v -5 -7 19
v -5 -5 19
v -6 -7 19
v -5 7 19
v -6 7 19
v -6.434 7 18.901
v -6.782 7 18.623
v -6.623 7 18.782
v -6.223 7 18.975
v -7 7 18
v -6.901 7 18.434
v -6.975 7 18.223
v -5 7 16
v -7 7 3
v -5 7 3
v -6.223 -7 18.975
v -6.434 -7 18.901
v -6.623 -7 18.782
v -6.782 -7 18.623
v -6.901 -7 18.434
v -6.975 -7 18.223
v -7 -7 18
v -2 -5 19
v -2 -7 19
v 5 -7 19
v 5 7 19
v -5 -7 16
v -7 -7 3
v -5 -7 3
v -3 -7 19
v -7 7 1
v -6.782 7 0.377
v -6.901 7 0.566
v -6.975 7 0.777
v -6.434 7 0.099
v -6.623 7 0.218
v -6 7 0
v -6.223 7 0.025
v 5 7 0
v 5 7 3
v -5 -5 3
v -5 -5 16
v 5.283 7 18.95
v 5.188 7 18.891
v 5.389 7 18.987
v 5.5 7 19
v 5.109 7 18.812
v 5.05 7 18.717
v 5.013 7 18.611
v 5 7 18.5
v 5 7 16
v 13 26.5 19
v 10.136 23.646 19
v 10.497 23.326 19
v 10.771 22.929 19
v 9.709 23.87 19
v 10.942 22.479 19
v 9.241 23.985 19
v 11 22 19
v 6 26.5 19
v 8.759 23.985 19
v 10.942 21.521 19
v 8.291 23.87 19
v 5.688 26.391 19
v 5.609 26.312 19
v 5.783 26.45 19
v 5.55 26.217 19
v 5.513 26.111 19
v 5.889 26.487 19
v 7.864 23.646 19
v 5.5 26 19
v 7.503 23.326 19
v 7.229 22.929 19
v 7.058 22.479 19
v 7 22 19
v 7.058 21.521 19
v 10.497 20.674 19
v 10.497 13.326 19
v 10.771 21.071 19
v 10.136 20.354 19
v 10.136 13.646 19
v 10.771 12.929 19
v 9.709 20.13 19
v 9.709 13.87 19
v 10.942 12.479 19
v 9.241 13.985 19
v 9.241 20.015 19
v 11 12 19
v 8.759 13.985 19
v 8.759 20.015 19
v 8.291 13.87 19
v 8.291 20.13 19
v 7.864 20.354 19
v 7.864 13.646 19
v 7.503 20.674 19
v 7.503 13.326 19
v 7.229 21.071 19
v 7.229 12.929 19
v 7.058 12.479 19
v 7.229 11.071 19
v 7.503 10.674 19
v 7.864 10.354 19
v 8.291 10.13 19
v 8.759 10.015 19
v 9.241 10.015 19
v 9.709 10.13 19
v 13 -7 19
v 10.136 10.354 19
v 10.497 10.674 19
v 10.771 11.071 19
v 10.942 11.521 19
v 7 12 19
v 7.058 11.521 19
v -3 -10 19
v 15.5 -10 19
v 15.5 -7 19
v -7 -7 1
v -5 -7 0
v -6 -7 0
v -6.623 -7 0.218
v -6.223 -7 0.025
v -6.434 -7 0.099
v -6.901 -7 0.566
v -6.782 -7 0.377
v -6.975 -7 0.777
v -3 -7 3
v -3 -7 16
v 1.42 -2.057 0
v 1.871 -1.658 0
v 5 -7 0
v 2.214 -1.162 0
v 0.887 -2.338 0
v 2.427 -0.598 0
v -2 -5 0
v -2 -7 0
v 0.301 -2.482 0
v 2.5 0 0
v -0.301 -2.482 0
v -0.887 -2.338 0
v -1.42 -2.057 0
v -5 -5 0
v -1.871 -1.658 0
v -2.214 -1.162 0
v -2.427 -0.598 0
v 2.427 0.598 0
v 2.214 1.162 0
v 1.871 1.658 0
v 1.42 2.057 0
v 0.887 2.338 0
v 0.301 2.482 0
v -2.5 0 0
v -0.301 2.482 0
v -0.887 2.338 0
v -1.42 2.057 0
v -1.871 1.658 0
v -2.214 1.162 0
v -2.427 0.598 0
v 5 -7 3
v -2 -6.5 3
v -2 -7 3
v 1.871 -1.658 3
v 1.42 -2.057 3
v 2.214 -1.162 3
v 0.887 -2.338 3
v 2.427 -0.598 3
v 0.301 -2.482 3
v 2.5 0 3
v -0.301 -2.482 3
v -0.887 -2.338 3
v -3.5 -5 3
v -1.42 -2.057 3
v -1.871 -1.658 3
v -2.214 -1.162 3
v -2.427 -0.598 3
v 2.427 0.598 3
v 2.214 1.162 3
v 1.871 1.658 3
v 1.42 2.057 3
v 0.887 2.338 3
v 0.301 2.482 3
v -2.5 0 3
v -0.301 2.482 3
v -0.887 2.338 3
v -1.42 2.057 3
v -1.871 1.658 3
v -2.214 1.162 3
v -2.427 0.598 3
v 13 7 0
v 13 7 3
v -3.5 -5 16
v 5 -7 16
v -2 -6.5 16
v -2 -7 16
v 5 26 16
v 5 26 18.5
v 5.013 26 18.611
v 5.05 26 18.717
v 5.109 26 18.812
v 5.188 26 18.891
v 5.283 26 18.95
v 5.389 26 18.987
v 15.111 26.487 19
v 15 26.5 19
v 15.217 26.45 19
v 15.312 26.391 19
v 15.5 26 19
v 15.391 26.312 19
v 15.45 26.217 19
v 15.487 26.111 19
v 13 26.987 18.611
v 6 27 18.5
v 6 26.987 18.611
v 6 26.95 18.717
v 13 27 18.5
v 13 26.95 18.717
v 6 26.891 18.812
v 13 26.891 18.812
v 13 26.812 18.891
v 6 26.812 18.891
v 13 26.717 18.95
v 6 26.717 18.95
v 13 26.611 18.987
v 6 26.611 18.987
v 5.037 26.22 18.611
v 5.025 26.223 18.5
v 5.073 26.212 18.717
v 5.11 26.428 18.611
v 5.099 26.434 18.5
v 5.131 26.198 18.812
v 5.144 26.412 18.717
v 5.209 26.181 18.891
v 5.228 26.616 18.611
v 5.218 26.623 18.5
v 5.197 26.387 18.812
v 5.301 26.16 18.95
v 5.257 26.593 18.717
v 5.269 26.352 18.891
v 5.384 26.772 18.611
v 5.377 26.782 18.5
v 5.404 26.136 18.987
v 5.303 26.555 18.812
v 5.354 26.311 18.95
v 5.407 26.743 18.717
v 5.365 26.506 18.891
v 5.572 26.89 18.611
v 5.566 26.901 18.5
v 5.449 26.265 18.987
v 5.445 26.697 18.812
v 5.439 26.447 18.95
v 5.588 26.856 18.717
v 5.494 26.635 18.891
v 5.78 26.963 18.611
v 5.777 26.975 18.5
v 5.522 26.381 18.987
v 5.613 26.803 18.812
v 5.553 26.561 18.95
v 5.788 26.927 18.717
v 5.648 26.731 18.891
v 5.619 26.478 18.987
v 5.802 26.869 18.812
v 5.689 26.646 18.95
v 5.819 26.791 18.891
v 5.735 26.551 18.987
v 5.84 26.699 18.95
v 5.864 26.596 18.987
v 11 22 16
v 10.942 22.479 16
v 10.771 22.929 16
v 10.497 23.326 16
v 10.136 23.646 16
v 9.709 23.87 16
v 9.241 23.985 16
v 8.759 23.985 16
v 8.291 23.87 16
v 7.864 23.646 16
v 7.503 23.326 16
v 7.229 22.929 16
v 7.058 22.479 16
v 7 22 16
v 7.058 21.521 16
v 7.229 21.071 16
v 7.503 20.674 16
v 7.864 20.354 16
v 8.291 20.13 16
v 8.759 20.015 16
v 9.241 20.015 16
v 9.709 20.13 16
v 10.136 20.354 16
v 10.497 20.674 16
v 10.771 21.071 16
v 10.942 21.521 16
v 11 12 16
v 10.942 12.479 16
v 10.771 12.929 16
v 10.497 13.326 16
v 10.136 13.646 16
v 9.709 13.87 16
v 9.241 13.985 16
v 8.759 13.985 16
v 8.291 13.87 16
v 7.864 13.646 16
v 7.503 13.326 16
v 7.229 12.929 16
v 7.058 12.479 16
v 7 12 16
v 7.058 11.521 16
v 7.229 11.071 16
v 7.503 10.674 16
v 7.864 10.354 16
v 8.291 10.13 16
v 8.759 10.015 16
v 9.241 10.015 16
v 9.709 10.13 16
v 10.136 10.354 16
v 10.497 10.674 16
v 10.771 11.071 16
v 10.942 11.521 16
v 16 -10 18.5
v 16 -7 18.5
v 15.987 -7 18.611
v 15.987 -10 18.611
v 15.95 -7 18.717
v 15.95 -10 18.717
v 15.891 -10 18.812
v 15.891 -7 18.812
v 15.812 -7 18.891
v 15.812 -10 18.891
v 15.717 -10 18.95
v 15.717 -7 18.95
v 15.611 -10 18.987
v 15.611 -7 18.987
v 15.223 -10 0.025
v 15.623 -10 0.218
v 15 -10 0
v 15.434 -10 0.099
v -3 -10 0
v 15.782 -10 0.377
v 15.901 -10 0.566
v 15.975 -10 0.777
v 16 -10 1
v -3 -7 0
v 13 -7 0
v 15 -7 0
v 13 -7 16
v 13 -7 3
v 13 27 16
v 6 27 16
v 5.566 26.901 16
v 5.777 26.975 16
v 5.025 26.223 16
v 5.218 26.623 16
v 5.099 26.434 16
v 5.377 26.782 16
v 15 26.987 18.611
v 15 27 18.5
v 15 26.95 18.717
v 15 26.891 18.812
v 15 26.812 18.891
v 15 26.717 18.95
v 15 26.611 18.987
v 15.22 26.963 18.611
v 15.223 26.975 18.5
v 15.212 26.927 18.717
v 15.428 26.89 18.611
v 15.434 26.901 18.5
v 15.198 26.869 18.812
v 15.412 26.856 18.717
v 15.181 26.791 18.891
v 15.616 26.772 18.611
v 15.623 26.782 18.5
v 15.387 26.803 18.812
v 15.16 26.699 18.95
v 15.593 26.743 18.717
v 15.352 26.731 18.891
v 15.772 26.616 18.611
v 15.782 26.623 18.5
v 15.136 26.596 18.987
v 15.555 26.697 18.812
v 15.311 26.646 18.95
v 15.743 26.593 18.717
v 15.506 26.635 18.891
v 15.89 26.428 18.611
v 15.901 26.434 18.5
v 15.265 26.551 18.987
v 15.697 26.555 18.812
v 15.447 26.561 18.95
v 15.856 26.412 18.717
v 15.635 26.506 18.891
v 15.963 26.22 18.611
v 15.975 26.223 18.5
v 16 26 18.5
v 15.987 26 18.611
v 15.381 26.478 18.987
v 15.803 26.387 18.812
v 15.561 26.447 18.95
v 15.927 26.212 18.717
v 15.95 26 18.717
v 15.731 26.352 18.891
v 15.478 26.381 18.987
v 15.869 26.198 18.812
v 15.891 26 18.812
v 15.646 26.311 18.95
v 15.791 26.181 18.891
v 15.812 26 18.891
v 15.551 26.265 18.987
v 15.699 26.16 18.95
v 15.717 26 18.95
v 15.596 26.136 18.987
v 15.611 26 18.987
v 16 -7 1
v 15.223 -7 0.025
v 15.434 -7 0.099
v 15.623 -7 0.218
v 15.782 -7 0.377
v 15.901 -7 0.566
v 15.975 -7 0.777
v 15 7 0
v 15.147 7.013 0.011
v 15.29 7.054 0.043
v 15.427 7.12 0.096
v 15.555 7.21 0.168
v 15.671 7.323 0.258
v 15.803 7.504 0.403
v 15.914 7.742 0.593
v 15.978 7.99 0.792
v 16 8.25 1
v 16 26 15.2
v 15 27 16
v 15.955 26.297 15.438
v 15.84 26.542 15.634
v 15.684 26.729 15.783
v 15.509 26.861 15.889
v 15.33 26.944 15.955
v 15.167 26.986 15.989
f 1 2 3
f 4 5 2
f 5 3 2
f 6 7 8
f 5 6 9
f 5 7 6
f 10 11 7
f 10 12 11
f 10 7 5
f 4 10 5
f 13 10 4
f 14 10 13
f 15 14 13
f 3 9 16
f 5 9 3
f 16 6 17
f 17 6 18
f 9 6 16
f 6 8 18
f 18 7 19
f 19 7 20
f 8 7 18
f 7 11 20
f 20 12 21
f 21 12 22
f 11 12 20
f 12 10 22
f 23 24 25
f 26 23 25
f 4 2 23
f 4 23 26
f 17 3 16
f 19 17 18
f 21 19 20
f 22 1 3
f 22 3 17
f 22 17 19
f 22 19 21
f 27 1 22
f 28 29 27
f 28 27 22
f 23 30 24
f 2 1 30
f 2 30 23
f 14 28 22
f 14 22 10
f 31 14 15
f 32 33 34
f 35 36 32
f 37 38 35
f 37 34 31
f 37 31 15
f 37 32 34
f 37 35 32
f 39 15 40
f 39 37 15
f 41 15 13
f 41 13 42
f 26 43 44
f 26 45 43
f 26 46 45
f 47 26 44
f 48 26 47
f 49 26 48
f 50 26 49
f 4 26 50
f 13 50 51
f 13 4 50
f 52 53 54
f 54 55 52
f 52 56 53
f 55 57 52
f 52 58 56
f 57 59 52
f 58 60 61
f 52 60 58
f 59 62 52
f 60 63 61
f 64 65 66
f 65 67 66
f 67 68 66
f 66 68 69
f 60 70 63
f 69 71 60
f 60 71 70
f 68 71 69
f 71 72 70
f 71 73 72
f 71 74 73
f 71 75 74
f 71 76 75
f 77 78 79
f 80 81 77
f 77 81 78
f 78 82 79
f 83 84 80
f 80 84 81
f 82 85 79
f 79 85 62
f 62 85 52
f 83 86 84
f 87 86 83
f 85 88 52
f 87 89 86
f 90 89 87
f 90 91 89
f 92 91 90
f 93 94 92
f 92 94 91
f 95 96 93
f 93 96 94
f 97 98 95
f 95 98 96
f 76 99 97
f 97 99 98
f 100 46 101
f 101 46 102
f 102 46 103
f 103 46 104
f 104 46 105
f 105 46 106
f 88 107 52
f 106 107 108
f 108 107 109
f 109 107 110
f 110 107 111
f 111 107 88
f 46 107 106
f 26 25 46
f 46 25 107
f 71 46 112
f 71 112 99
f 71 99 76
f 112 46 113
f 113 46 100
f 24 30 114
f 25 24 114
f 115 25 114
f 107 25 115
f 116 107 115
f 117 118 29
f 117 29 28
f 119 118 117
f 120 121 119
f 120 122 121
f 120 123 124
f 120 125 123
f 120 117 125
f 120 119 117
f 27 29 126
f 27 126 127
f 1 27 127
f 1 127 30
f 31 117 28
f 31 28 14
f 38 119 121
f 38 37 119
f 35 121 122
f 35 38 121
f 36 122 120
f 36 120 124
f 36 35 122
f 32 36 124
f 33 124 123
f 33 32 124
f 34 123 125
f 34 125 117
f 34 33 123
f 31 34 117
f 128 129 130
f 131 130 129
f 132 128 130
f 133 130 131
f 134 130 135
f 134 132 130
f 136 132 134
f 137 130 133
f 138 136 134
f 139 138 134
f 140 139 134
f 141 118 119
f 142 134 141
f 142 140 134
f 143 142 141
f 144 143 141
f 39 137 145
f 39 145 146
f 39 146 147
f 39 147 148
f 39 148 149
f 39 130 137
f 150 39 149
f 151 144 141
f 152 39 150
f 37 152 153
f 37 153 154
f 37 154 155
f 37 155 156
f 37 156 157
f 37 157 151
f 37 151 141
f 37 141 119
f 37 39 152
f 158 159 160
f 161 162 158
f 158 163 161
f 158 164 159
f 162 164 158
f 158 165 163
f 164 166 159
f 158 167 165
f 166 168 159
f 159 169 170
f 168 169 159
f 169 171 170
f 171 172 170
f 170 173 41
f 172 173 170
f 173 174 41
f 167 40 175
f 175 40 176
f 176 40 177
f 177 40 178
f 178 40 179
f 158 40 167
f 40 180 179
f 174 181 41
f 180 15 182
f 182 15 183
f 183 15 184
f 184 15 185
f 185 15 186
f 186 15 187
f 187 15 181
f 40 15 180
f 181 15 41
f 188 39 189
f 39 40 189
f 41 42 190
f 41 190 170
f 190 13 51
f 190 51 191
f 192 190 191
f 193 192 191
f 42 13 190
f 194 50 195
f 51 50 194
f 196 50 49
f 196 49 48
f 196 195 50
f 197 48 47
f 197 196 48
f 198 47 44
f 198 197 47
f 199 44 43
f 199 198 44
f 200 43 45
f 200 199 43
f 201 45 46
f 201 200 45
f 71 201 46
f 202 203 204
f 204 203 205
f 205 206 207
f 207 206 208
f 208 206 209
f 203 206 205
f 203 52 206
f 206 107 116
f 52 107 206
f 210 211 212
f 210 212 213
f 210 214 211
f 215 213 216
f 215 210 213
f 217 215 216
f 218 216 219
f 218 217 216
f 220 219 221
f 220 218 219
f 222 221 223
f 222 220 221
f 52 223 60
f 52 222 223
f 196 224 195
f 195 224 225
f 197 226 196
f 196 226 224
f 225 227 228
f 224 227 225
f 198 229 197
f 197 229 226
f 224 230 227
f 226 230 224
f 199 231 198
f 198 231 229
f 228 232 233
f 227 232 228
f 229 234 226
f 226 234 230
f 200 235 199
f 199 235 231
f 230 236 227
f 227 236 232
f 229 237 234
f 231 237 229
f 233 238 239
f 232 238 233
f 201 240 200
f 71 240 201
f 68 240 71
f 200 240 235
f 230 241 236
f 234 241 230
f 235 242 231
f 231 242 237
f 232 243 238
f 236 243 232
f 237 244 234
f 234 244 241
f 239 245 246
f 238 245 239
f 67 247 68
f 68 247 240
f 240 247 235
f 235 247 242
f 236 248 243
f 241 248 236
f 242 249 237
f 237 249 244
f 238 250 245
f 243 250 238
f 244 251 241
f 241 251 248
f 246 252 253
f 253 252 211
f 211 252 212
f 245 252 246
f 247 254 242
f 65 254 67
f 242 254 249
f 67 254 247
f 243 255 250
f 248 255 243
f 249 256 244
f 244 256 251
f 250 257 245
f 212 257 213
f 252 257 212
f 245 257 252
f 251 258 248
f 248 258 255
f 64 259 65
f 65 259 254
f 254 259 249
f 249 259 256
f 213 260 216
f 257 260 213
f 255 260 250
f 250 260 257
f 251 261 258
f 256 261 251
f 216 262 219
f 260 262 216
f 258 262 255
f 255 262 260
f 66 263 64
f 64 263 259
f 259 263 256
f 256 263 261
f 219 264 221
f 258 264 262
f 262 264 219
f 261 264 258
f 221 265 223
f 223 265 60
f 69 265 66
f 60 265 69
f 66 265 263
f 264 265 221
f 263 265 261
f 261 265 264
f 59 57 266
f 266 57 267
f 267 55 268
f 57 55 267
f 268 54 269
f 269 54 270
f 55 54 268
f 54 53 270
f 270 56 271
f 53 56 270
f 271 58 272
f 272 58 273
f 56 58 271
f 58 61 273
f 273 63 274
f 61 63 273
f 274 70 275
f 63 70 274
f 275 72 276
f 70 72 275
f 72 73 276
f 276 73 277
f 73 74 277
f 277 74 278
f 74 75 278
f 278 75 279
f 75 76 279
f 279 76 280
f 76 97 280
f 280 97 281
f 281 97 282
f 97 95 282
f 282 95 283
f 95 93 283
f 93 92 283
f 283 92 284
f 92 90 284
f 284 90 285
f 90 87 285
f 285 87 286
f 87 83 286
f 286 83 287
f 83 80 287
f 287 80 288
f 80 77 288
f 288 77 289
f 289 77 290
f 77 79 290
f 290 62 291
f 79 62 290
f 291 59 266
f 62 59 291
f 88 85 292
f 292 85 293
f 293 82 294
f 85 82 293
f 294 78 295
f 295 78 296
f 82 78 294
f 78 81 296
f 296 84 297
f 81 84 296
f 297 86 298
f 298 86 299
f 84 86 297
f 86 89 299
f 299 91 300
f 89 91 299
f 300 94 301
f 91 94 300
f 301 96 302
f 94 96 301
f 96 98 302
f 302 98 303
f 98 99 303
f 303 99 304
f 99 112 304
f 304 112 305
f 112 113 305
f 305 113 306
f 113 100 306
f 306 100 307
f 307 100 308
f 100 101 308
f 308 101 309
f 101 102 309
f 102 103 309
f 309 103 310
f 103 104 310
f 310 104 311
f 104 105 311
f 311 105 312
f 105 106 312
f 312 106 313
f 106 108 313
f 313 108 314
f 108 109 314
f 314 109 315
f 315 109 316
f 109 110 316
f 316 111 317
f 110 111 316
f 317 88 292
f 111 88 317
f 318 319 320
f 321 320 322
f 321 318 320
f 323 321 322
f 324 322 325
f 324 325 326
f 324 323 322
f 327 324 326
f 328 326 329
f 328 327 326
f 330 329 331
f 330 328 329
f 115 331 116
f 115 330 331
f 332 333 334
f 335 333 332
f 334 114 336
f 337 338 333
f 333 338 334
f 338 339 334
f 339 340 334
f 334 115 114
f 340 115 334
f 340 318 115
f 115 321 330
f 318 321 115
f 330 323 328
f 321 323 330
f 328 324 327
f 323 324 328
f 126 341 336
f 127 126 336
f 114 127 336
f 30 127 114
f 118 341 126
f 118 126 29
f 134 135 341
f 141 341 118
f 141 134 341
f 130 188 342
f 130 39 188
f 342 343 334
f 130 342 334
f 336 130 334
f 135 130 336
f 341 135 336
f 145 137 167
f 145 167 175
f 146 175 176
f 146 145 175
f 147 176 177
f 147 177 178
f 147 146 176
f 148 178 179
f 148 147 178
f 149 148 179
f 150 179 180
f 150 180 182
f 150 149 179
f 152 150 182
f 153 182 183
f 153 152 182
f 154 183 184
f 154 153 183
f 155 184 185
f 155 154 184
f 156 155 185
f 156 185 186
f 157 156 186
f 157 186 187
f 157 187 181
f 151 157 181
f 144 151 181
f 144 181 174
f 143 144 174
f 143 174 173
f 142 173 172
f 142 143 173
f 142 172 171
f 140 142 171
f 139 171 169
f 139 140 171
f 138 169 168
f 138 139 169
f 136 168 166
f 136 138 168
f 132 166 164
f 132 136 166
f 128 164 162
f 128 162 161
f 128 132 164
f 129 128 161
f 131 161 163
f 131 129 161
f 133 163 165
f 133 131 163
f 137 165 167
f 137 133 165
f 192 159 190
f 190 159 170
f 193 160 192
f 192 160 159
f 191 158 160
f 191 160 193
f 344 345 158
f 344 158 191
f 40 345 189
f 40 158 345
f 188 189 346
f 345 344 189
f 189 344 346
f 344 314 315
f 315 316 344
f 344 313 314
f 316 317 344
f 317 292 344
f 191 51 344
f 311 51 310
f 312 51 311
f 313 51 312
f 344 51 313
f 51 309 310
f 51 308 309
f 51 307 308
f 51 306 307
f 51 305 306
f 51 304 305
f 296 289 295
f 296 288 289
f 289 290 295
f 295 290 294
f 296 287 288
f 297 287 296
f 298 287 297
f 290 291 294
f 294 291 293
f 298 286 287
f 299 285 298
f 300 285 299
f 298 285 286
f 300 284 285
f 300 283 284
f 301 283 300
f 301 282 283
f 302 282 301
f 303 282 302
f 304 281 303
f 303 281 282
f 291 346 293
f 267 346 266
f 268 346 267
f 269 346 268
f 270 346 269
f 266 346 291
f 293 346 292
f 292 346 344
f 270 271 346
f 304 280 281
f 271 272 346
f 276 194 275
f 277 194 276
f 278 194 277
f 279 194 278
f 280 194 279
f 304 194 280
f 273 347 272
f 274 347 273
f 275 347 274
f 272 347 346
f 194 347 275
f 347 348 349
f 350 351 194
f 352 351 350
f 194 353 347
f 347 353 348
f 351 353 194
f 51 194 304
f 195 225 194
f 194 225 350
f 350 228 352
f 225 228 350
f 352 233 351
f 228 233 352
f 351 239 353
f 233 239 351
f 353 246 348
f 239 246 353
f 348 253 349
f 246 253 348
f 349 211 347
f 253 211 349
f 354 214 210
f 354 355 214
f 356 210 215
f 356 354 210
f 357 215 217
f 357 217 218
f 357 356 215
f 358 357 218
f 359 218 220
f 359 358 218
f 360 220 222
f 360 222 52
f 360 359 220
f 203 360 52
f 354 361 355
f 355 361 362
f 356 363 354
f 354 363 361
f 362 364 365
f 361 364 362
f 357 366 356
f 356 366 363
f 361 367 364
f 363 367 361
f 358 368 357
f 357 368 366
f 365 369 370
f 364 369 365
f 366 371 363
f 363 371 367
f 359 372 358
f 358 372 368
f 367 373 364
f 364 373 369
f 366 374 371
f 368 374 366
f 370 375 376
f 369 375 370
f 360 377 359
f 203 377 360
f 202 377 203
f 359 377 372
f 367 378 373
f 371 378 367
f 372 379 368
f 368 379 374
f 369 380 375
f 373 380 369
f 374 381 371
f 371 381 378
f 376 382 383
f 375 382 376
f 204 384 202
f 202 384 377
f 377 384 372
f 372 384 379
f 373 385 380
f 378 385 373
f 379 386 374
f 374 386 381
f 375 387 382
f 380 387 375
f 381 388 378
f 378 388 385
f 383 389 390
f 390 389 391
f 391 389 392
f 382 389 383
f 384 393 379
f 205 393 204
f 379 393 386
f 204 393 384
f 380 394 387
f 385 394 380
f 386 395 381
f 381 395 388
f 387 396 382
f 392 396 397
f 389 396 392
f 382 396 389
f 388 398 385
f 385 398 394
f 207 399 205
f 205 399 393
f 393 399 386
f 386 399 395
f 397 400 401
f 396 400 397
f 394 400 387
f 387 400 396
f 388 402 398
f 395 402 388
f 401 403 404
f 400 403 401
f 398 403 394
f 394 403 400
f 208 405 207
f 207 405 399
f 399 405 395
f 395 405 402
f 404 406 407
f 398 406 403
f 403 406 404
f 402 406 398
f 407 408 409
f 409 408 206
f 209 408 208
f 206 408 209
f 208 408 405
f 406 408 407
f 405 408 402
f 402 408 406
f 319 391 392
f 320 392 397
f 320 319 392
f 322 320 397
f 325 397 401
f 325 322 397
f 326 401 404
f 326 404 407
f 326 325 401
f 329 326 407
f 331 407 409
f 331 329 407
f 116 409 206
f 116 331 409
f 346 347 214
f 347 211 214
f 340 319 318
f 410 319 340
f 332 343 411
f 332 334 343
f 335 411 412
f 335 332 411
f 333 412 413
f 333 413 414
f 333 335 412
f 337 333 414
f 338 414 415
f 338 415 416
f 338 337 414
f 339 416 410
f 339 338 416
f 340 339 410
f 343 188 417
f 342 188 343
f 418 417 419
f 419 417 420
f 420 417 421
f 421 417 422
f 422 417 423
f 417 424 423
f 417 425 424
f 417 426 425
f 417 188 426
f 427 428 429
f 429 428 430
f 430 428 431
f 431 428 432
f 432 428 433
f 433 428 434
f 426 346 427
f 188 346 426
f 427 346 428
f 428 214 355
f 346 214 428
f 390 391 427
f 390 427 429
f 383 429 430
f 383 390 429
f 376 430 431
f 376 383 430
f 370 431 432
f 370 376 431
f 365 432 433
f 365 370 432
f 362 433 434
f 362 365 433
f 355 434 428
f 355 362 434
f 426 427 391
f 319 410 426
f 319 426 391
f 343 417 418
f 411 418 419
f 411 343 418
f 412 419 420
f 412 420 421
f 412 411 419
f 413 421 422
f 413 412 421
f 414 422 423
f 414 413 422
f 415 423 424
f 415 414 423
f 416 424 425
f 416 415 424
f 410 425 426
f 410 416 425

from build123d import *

# Parameters (mm, degrees)
SKETCH_W     = 12
SKETCH_H     = 14
SKETCH_R     = 2.5
PAD_DEPTH    = 3
SKETCH001_W  = 2
SKETCH001_H  = 14
PAD001_DEPTH = 16
SKETCH002_W  = 14
SKETCH002_H  = 3
PAD008_DEPTH = 10
SKETCH004_W  = 14
SKETCH004_H  = 3
PAD004_DEPTH = 8
SKETCH003_W  = 34
SKETCH003_H  = 3
PAD009_DEPTH = 8
SKETCH006_R  = 2
POCKET_DEPTH = 19.001
PAD005_DEPTH = 3
SKETCH008_W  = 19
SKETCH008_H  = 19
PAD010_DEPTH = 3
SKETCH009_W  = 2
SKETCH009_H  = 19
PAD011_DEPTH = 3
CHAMFER_SIZE = 1.5
FILLET_R     = 1
FILLET001_R  = 1
FILLET002_R  = 1
FILLET003_R  = 0.5
FILLET004_R  = 1


with BuildPart() as part:
    # Sketch → Pad (new body)
    with BuildSketch(Plane.XY):
        with Locations((-1, 0)):
            Rectangle(SKETCH_W, SKETCH_H)
        Circle(SKETCH_R, mode=Mode.SUBTRACT)
    extrude(amount=PAD_DEPTH)

    # Sketch001 (on Face7 of Pad) → Pad001 (join)
    with BuildSketch(Plane.XY.offset(3)):
        with Locations((-6, 0)):
            Rectangle(SKETCH001_W, SKETCH001_H)
    extrude(amount=PAD001_DEPTH)

    # Sketch002 (on Face10 of Pad001) → Pad008 (join)
    with BuildSketch(Plane.YZ.offset(-5)):
        with Locations((0, 17.5)):
            Rectangle(SKETCH002_W, SKETCH002_H)
    extrude(amount=PAD008_DEPTH)

    # Sketch004 → Pad004 (join)
    with BuildSketch(Plane(origin=(5, 0, 0), x_dir=(0, -1, 0), z_dir=(-1, 0, 0))):
        with Locations((0, 1.5)):
            Rectangle(SKETCH004_W, SKETCH004_H)
    extrude(amount=-PAD004_DEPTH)

    # Sketch003 → Pad009 (join)
    with BuildSketch(Plane(origin=(5, 0, 0), x_dir=(0, -1, 0), z_dir=(-1, 0, 0))):
        with Locations((-10, 17.5)):
            Rectangle(SKETCH003_W, SKETCH003_H)
    extrude(amount=-PAD009_DEPTH)

    # Sketch006 → Pocket (cut, through all)
    with BuildSketch(Plane.XY.offset(19)):
        with Locations((9, 22)):
            Circle(SKETCH006_R)
        with Locations((9, 12)):
            Circle(SKETCH006_R)
    extrude(amount=-POCKET_DEPTH, mode=Mode.SUBTRACT)

    # Sketch007 (on Face26 of Pocket) → Pad005 (join)
    with BuildSketch(Plane.YZ.offset(13)):
        Polygon((27, 19), (-7, 19), (-7, 0), (7, 0), (27, 16), align=None)
    extrude(amount=PAD005_DEPTH)

    # Sketch008 (on Face19 of Pad005) → Pad010 (join)
    with BuildSketch(Plane.XZ.offset(7)):
        with Locations((6.5, 9.5)):
            Rectangle(SKETCH008_W, SKETCH008_H)
    extrude(amount=PAD010_DEPTH)

    # Sketch009 (on Face14 of Pad010) → Pad011 (join)
    with BuildSketch(Plane.YZ.offset(-5)):
        with Locations((-6, 9.5)):
            Rectangle(SKETCH009_W, SKETCH009_H)
    extrude(amount=PAD011_DEPTH)

    # Chamfer
    chamfer_edges = [part.edges().sort_by_distance(p)[0] for p in [
        (-2, -5, 9.5),
    ]]
    chamfer(chamfer_edges, length=CHAMFER_SIZE)

    # Fillet
    fillet_edges = [part.edges().sort_by_distance(p)[0] for p in [
        (16, 0, 0),
    ]]
    fillet(fillet_edges, radius=FILLET_R)

    # Fillet001
    fillet001_edges = [part.edges().sort_by_distance(p)[0] for p in [
        (-7, 0, 0),
    ]]
    fillet(fillet001_edges, radius=FILLET001_R)

    # Fillet002
    fillet002_edges = [part.edges().sort_by_distance(p)[0] for p in [
        (5, 27, 17.5),
        (16, 27, 17.5),
    ]]
    fillet(fillet002_edges, radius=FILLET002_R)

    # Fillet003
    fillet003_edges = [part.edges().sort_by_distance(p)[0] for p in [
        (16, 9.5, 19),
        (5, 16.5, 19),
    ]]
    fillet(fillet003_edges, radius=FILLET003_R)

    # Fillet004
    fillet004_edges = [part.edges().sort_by_distance(p)[0] for p in [
        (-7, 0, 19),
    ]]
    fillet(fillet004_edges, radius=FILLET004_R)


solid = part.part
